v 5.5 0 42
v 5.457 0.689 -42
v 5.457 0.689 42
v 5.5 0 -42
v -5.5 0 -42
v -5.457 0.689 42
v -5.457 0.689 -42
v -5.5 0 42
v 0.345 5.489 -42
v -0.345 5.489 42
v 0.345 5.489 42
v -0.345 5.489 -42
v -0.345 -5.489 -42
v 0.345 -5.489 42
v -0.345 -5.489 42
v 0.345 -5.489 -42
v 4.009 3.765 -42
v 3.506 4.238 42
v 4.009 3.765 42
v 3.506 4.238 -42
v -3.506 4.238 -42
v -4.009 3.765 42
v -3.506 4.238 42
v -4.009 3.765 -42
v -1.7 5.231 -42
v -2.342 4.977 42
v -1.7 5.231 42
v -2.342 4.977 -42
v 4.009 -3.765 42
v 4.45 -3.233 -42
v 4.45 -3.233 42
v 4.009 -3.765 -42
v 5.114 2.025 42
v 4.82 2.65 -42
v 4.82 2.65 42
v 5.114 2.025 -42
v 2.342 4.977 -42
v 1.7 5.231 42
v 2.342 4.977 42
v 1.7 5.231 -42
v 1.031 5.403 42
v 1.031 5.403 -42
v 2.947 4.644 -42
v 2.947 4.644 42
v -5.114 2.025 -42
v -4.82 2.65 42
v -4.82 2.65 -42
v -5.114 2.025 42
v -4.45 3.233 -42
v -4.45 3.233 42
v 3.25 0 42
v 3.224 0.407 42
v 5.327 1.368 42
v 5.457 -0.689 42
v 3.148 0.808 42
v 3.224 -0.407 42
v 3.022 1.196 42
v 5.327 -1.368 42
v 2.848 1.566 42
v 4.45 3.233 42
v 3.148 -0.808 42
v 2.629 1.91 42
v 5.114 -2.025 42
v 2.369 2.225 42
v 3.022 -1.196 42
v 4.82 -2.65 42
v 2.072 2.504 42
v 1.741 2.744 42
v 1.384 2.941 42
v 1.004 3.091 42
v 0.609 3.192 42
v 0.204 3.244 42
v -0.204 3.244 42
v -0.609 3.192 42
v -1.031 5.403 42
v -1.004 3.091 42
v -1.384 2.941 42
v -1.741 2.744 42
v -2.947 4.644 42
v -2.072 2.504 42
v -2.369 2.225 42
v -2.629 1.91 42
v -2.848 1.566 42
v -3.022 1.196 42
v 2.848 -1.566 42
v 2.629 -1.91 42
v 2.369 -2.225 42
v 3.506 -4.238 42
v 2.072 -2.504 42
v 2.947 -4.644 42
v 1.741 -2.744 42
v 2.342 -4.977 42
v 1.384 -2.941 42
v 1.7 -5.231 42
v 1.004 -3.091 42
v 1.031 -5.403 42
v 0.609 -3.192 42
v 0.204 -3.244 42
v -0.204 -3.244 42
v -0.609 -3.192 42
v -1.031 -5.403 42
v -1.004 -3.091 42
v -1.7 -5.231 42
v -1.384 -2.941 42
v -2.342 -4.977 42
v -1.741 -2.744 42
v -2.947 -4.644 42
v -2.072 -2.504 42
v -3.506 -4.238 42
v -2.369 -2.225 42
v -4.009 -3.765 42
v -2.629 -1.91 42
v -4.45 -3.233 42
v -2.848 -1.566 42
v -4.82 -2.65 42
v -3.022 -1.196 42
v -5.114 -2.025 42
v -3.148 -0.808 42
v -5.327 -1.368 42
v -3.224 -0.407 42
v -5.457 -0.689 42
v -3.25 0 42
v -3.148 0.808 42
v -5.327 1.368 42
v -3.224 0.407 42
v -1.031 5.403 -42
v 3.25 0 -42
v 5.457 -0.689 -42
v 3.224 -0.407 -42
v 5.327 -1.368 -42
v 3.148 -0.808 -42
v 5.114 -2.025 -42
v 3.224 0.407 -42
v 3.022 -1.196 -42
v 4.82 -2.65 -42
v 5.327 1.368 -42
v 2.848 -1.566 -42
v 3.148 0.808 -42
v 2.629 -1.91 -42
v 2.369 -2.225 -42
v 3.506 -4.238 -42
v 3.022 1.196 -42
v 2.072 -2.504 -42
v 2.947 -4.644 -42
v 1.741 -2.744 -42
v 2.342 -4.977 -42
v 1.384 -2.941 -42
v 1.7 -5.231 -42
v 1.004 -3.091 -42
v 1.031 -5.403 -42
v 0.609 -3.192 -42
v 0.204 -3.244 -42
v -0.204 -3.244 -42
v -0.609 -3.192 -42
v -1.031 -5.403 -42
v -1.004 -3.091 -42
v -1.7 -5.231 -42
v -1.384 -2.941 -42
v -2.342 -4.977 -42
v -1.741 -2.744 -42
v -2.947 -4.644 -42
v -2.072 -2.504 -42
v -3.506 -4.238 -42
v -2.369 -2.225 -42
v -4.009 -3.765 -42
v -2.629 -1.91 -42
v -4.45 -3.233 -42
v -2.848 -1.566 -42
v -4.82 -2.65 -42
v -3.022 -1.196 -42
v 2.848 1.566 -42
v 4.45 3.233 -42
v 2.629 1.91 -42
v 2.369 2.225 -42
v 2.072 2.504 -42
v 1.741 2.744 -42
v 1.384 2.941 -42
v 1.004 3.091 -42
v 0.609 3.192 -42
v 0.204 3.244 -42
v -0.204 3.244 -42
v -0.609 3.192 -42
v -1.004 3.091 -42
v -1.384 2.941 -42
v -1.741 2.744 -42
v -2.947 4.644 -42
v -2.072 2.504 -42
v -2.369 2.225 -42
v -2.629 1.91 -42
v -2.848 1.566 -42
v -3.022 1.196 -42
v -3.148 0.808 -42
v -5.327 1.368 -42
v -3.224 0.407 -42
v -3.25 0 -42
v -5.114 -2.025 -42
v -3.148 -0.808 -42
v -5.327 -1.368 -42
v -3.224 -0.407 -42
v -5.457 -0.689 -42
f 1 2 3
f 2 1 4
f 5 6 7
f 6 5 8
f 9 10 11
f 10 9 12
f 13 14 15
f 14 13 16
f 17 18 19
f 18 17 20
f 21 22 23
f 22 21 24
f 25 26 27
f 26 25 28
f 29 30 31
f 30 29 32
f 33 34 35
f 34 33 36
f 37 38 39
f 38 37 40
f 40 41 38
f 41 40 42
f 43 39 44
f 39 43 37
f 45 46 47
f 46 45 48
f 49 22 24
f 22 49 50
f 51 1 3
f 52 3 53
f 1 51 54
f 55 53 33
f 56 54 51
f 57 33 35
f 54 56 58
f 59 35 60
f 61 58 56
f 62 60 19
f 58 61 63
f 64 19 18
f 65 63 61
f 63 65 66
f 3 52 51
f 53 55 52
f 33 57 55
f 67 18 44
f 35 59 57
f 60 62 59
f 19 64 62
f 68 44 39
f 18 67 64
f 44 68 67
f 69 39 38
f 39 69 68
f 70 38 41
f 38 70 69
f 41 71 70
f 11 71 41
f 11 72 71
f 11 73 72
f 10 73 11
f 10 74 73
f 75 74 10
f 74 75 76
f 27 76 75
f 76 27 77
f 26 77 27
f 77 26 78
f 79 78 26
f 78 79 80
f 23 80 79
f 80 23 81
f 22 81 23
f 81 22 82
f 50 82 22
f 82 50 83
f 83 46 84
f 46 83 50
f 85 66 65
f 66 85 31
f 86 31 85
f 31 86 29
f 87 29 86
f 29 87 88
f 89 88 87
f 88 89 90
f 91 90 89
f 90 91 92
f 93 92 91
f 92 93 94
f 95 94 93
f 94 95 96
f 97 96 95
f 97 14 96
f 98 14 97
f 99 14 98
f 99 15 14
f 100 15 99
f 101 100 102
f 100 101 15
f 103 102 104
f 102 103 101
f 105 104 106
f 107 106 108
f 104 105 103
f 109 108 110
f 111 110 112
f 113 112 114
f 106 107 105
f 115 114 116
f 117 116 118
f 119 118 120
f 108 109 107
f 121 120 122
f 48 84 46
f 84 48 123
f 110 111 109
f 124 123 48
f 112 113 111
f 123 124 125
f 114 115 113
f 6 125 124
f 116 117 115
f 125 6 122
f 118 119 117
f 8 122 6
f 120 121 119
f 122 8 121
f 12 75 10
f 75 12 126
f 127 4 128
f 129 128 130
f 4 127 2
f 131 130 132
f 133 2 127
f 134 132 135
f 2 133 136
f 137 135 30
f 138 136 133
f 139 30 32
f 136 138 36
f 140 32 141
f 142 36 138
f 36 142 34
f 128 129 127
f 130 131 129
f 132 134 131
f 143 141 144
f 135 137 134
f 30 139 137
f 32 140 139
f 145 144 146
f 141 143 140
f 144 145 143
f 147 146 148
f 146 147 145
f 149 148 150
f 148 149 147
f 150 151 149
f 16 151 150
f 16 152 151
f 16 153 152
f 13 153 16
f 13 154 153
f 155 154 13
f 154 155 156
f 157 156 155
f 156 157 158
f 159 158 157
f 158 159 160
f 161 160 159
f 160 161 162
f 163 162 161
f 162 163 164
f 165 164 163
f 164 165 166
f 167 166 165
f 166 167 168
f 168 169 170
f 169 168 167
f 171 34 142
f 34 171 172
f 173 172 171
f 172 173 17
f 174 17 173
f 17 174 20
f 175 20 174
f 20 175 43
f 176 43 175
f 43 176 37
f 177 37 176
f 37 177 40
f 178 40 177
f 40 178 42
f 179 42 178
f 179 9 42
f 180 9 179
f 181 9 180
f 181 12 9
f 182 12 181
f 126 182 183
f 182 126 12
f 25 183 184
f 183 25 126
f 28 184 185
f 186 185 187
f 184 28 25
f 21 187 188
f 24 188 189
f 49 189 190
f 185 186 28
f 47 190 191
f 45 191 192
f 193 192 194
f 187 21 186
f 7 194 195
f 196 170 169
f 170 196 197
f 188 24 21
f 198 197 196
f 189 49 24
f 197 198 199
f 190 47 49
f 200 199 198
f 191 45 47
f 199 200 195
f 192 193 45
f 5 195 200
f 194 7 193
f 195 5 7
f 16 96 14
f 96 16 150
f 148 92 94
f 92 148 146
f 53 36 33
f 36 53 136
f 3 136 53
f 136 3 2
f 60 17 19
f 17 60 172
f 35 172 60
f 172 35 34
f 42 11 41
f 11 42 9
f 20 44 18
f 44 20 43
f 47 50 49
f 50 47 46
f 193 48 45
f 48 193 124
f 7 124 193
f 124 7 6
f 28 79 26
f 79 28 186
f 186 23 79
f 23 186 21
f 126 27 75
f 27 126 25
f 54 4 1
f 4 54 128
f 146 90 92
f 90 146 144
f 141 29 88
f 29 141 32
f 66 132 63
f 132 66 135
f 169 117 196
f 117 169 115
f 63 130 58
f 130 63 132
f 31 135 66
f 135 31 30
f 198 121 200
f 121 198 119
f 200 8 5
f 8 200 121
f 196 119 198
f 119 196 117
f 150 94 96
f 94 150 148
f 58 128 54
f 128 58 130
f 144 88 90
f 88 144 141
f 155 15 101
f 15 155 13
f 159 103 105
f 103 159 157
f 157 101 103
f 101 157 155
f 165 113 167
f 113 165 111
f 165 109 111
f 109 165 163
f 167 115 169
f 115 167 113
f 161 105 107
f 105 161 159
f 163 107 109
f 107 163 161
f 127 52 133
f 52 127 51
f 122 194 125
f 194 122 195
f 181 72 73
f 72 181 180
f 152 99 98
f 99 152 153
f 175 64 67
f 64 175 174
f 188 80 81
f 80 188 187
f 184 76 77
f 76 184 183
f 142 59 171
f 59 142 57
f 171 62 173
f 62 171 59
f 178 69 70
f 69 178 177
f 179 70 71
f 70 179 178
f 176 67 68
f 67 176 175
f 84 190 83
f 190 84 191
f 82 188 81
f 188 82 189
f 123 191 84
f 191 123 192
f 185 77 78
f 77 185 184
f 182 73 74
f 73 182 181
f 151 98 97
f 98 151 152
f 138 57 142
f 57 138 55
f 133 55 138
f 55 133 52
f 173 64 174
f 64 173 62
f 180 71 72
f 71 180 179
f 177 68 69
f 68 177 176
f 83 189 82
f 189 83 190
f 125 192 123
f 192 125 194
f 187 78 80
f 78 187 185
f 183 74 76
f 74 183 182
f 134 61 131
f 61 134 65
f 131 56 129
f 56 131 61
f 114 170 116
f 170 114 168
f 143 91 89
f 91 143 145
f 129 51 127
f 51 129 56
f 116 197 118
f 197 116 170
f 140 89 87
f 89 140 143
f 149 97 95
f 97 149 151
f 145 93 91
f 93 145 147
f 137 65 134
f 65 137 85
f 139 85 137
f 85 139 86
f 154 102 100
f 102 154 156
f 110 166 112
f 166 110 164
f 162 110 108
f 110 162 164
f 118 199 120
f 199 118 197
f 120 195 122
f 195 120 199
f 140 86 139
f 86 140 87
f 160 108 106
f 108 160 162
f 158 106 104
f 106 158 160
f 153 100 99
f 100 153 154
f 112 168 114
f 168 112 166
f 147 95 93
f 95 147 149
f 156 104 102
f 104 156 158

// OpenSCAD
$fn = 50;


difference() {
	union() {
		translate(v = [0, 0, -42.0000000000]) {
			cylinder(h = 84, r = 5.5000000000);
		}
	}
	union() {
		translate(v = [0, 0, -100.0000000000]) {
			cylinder(h = 200, r = 3.2500000000);
		}
	}
}
